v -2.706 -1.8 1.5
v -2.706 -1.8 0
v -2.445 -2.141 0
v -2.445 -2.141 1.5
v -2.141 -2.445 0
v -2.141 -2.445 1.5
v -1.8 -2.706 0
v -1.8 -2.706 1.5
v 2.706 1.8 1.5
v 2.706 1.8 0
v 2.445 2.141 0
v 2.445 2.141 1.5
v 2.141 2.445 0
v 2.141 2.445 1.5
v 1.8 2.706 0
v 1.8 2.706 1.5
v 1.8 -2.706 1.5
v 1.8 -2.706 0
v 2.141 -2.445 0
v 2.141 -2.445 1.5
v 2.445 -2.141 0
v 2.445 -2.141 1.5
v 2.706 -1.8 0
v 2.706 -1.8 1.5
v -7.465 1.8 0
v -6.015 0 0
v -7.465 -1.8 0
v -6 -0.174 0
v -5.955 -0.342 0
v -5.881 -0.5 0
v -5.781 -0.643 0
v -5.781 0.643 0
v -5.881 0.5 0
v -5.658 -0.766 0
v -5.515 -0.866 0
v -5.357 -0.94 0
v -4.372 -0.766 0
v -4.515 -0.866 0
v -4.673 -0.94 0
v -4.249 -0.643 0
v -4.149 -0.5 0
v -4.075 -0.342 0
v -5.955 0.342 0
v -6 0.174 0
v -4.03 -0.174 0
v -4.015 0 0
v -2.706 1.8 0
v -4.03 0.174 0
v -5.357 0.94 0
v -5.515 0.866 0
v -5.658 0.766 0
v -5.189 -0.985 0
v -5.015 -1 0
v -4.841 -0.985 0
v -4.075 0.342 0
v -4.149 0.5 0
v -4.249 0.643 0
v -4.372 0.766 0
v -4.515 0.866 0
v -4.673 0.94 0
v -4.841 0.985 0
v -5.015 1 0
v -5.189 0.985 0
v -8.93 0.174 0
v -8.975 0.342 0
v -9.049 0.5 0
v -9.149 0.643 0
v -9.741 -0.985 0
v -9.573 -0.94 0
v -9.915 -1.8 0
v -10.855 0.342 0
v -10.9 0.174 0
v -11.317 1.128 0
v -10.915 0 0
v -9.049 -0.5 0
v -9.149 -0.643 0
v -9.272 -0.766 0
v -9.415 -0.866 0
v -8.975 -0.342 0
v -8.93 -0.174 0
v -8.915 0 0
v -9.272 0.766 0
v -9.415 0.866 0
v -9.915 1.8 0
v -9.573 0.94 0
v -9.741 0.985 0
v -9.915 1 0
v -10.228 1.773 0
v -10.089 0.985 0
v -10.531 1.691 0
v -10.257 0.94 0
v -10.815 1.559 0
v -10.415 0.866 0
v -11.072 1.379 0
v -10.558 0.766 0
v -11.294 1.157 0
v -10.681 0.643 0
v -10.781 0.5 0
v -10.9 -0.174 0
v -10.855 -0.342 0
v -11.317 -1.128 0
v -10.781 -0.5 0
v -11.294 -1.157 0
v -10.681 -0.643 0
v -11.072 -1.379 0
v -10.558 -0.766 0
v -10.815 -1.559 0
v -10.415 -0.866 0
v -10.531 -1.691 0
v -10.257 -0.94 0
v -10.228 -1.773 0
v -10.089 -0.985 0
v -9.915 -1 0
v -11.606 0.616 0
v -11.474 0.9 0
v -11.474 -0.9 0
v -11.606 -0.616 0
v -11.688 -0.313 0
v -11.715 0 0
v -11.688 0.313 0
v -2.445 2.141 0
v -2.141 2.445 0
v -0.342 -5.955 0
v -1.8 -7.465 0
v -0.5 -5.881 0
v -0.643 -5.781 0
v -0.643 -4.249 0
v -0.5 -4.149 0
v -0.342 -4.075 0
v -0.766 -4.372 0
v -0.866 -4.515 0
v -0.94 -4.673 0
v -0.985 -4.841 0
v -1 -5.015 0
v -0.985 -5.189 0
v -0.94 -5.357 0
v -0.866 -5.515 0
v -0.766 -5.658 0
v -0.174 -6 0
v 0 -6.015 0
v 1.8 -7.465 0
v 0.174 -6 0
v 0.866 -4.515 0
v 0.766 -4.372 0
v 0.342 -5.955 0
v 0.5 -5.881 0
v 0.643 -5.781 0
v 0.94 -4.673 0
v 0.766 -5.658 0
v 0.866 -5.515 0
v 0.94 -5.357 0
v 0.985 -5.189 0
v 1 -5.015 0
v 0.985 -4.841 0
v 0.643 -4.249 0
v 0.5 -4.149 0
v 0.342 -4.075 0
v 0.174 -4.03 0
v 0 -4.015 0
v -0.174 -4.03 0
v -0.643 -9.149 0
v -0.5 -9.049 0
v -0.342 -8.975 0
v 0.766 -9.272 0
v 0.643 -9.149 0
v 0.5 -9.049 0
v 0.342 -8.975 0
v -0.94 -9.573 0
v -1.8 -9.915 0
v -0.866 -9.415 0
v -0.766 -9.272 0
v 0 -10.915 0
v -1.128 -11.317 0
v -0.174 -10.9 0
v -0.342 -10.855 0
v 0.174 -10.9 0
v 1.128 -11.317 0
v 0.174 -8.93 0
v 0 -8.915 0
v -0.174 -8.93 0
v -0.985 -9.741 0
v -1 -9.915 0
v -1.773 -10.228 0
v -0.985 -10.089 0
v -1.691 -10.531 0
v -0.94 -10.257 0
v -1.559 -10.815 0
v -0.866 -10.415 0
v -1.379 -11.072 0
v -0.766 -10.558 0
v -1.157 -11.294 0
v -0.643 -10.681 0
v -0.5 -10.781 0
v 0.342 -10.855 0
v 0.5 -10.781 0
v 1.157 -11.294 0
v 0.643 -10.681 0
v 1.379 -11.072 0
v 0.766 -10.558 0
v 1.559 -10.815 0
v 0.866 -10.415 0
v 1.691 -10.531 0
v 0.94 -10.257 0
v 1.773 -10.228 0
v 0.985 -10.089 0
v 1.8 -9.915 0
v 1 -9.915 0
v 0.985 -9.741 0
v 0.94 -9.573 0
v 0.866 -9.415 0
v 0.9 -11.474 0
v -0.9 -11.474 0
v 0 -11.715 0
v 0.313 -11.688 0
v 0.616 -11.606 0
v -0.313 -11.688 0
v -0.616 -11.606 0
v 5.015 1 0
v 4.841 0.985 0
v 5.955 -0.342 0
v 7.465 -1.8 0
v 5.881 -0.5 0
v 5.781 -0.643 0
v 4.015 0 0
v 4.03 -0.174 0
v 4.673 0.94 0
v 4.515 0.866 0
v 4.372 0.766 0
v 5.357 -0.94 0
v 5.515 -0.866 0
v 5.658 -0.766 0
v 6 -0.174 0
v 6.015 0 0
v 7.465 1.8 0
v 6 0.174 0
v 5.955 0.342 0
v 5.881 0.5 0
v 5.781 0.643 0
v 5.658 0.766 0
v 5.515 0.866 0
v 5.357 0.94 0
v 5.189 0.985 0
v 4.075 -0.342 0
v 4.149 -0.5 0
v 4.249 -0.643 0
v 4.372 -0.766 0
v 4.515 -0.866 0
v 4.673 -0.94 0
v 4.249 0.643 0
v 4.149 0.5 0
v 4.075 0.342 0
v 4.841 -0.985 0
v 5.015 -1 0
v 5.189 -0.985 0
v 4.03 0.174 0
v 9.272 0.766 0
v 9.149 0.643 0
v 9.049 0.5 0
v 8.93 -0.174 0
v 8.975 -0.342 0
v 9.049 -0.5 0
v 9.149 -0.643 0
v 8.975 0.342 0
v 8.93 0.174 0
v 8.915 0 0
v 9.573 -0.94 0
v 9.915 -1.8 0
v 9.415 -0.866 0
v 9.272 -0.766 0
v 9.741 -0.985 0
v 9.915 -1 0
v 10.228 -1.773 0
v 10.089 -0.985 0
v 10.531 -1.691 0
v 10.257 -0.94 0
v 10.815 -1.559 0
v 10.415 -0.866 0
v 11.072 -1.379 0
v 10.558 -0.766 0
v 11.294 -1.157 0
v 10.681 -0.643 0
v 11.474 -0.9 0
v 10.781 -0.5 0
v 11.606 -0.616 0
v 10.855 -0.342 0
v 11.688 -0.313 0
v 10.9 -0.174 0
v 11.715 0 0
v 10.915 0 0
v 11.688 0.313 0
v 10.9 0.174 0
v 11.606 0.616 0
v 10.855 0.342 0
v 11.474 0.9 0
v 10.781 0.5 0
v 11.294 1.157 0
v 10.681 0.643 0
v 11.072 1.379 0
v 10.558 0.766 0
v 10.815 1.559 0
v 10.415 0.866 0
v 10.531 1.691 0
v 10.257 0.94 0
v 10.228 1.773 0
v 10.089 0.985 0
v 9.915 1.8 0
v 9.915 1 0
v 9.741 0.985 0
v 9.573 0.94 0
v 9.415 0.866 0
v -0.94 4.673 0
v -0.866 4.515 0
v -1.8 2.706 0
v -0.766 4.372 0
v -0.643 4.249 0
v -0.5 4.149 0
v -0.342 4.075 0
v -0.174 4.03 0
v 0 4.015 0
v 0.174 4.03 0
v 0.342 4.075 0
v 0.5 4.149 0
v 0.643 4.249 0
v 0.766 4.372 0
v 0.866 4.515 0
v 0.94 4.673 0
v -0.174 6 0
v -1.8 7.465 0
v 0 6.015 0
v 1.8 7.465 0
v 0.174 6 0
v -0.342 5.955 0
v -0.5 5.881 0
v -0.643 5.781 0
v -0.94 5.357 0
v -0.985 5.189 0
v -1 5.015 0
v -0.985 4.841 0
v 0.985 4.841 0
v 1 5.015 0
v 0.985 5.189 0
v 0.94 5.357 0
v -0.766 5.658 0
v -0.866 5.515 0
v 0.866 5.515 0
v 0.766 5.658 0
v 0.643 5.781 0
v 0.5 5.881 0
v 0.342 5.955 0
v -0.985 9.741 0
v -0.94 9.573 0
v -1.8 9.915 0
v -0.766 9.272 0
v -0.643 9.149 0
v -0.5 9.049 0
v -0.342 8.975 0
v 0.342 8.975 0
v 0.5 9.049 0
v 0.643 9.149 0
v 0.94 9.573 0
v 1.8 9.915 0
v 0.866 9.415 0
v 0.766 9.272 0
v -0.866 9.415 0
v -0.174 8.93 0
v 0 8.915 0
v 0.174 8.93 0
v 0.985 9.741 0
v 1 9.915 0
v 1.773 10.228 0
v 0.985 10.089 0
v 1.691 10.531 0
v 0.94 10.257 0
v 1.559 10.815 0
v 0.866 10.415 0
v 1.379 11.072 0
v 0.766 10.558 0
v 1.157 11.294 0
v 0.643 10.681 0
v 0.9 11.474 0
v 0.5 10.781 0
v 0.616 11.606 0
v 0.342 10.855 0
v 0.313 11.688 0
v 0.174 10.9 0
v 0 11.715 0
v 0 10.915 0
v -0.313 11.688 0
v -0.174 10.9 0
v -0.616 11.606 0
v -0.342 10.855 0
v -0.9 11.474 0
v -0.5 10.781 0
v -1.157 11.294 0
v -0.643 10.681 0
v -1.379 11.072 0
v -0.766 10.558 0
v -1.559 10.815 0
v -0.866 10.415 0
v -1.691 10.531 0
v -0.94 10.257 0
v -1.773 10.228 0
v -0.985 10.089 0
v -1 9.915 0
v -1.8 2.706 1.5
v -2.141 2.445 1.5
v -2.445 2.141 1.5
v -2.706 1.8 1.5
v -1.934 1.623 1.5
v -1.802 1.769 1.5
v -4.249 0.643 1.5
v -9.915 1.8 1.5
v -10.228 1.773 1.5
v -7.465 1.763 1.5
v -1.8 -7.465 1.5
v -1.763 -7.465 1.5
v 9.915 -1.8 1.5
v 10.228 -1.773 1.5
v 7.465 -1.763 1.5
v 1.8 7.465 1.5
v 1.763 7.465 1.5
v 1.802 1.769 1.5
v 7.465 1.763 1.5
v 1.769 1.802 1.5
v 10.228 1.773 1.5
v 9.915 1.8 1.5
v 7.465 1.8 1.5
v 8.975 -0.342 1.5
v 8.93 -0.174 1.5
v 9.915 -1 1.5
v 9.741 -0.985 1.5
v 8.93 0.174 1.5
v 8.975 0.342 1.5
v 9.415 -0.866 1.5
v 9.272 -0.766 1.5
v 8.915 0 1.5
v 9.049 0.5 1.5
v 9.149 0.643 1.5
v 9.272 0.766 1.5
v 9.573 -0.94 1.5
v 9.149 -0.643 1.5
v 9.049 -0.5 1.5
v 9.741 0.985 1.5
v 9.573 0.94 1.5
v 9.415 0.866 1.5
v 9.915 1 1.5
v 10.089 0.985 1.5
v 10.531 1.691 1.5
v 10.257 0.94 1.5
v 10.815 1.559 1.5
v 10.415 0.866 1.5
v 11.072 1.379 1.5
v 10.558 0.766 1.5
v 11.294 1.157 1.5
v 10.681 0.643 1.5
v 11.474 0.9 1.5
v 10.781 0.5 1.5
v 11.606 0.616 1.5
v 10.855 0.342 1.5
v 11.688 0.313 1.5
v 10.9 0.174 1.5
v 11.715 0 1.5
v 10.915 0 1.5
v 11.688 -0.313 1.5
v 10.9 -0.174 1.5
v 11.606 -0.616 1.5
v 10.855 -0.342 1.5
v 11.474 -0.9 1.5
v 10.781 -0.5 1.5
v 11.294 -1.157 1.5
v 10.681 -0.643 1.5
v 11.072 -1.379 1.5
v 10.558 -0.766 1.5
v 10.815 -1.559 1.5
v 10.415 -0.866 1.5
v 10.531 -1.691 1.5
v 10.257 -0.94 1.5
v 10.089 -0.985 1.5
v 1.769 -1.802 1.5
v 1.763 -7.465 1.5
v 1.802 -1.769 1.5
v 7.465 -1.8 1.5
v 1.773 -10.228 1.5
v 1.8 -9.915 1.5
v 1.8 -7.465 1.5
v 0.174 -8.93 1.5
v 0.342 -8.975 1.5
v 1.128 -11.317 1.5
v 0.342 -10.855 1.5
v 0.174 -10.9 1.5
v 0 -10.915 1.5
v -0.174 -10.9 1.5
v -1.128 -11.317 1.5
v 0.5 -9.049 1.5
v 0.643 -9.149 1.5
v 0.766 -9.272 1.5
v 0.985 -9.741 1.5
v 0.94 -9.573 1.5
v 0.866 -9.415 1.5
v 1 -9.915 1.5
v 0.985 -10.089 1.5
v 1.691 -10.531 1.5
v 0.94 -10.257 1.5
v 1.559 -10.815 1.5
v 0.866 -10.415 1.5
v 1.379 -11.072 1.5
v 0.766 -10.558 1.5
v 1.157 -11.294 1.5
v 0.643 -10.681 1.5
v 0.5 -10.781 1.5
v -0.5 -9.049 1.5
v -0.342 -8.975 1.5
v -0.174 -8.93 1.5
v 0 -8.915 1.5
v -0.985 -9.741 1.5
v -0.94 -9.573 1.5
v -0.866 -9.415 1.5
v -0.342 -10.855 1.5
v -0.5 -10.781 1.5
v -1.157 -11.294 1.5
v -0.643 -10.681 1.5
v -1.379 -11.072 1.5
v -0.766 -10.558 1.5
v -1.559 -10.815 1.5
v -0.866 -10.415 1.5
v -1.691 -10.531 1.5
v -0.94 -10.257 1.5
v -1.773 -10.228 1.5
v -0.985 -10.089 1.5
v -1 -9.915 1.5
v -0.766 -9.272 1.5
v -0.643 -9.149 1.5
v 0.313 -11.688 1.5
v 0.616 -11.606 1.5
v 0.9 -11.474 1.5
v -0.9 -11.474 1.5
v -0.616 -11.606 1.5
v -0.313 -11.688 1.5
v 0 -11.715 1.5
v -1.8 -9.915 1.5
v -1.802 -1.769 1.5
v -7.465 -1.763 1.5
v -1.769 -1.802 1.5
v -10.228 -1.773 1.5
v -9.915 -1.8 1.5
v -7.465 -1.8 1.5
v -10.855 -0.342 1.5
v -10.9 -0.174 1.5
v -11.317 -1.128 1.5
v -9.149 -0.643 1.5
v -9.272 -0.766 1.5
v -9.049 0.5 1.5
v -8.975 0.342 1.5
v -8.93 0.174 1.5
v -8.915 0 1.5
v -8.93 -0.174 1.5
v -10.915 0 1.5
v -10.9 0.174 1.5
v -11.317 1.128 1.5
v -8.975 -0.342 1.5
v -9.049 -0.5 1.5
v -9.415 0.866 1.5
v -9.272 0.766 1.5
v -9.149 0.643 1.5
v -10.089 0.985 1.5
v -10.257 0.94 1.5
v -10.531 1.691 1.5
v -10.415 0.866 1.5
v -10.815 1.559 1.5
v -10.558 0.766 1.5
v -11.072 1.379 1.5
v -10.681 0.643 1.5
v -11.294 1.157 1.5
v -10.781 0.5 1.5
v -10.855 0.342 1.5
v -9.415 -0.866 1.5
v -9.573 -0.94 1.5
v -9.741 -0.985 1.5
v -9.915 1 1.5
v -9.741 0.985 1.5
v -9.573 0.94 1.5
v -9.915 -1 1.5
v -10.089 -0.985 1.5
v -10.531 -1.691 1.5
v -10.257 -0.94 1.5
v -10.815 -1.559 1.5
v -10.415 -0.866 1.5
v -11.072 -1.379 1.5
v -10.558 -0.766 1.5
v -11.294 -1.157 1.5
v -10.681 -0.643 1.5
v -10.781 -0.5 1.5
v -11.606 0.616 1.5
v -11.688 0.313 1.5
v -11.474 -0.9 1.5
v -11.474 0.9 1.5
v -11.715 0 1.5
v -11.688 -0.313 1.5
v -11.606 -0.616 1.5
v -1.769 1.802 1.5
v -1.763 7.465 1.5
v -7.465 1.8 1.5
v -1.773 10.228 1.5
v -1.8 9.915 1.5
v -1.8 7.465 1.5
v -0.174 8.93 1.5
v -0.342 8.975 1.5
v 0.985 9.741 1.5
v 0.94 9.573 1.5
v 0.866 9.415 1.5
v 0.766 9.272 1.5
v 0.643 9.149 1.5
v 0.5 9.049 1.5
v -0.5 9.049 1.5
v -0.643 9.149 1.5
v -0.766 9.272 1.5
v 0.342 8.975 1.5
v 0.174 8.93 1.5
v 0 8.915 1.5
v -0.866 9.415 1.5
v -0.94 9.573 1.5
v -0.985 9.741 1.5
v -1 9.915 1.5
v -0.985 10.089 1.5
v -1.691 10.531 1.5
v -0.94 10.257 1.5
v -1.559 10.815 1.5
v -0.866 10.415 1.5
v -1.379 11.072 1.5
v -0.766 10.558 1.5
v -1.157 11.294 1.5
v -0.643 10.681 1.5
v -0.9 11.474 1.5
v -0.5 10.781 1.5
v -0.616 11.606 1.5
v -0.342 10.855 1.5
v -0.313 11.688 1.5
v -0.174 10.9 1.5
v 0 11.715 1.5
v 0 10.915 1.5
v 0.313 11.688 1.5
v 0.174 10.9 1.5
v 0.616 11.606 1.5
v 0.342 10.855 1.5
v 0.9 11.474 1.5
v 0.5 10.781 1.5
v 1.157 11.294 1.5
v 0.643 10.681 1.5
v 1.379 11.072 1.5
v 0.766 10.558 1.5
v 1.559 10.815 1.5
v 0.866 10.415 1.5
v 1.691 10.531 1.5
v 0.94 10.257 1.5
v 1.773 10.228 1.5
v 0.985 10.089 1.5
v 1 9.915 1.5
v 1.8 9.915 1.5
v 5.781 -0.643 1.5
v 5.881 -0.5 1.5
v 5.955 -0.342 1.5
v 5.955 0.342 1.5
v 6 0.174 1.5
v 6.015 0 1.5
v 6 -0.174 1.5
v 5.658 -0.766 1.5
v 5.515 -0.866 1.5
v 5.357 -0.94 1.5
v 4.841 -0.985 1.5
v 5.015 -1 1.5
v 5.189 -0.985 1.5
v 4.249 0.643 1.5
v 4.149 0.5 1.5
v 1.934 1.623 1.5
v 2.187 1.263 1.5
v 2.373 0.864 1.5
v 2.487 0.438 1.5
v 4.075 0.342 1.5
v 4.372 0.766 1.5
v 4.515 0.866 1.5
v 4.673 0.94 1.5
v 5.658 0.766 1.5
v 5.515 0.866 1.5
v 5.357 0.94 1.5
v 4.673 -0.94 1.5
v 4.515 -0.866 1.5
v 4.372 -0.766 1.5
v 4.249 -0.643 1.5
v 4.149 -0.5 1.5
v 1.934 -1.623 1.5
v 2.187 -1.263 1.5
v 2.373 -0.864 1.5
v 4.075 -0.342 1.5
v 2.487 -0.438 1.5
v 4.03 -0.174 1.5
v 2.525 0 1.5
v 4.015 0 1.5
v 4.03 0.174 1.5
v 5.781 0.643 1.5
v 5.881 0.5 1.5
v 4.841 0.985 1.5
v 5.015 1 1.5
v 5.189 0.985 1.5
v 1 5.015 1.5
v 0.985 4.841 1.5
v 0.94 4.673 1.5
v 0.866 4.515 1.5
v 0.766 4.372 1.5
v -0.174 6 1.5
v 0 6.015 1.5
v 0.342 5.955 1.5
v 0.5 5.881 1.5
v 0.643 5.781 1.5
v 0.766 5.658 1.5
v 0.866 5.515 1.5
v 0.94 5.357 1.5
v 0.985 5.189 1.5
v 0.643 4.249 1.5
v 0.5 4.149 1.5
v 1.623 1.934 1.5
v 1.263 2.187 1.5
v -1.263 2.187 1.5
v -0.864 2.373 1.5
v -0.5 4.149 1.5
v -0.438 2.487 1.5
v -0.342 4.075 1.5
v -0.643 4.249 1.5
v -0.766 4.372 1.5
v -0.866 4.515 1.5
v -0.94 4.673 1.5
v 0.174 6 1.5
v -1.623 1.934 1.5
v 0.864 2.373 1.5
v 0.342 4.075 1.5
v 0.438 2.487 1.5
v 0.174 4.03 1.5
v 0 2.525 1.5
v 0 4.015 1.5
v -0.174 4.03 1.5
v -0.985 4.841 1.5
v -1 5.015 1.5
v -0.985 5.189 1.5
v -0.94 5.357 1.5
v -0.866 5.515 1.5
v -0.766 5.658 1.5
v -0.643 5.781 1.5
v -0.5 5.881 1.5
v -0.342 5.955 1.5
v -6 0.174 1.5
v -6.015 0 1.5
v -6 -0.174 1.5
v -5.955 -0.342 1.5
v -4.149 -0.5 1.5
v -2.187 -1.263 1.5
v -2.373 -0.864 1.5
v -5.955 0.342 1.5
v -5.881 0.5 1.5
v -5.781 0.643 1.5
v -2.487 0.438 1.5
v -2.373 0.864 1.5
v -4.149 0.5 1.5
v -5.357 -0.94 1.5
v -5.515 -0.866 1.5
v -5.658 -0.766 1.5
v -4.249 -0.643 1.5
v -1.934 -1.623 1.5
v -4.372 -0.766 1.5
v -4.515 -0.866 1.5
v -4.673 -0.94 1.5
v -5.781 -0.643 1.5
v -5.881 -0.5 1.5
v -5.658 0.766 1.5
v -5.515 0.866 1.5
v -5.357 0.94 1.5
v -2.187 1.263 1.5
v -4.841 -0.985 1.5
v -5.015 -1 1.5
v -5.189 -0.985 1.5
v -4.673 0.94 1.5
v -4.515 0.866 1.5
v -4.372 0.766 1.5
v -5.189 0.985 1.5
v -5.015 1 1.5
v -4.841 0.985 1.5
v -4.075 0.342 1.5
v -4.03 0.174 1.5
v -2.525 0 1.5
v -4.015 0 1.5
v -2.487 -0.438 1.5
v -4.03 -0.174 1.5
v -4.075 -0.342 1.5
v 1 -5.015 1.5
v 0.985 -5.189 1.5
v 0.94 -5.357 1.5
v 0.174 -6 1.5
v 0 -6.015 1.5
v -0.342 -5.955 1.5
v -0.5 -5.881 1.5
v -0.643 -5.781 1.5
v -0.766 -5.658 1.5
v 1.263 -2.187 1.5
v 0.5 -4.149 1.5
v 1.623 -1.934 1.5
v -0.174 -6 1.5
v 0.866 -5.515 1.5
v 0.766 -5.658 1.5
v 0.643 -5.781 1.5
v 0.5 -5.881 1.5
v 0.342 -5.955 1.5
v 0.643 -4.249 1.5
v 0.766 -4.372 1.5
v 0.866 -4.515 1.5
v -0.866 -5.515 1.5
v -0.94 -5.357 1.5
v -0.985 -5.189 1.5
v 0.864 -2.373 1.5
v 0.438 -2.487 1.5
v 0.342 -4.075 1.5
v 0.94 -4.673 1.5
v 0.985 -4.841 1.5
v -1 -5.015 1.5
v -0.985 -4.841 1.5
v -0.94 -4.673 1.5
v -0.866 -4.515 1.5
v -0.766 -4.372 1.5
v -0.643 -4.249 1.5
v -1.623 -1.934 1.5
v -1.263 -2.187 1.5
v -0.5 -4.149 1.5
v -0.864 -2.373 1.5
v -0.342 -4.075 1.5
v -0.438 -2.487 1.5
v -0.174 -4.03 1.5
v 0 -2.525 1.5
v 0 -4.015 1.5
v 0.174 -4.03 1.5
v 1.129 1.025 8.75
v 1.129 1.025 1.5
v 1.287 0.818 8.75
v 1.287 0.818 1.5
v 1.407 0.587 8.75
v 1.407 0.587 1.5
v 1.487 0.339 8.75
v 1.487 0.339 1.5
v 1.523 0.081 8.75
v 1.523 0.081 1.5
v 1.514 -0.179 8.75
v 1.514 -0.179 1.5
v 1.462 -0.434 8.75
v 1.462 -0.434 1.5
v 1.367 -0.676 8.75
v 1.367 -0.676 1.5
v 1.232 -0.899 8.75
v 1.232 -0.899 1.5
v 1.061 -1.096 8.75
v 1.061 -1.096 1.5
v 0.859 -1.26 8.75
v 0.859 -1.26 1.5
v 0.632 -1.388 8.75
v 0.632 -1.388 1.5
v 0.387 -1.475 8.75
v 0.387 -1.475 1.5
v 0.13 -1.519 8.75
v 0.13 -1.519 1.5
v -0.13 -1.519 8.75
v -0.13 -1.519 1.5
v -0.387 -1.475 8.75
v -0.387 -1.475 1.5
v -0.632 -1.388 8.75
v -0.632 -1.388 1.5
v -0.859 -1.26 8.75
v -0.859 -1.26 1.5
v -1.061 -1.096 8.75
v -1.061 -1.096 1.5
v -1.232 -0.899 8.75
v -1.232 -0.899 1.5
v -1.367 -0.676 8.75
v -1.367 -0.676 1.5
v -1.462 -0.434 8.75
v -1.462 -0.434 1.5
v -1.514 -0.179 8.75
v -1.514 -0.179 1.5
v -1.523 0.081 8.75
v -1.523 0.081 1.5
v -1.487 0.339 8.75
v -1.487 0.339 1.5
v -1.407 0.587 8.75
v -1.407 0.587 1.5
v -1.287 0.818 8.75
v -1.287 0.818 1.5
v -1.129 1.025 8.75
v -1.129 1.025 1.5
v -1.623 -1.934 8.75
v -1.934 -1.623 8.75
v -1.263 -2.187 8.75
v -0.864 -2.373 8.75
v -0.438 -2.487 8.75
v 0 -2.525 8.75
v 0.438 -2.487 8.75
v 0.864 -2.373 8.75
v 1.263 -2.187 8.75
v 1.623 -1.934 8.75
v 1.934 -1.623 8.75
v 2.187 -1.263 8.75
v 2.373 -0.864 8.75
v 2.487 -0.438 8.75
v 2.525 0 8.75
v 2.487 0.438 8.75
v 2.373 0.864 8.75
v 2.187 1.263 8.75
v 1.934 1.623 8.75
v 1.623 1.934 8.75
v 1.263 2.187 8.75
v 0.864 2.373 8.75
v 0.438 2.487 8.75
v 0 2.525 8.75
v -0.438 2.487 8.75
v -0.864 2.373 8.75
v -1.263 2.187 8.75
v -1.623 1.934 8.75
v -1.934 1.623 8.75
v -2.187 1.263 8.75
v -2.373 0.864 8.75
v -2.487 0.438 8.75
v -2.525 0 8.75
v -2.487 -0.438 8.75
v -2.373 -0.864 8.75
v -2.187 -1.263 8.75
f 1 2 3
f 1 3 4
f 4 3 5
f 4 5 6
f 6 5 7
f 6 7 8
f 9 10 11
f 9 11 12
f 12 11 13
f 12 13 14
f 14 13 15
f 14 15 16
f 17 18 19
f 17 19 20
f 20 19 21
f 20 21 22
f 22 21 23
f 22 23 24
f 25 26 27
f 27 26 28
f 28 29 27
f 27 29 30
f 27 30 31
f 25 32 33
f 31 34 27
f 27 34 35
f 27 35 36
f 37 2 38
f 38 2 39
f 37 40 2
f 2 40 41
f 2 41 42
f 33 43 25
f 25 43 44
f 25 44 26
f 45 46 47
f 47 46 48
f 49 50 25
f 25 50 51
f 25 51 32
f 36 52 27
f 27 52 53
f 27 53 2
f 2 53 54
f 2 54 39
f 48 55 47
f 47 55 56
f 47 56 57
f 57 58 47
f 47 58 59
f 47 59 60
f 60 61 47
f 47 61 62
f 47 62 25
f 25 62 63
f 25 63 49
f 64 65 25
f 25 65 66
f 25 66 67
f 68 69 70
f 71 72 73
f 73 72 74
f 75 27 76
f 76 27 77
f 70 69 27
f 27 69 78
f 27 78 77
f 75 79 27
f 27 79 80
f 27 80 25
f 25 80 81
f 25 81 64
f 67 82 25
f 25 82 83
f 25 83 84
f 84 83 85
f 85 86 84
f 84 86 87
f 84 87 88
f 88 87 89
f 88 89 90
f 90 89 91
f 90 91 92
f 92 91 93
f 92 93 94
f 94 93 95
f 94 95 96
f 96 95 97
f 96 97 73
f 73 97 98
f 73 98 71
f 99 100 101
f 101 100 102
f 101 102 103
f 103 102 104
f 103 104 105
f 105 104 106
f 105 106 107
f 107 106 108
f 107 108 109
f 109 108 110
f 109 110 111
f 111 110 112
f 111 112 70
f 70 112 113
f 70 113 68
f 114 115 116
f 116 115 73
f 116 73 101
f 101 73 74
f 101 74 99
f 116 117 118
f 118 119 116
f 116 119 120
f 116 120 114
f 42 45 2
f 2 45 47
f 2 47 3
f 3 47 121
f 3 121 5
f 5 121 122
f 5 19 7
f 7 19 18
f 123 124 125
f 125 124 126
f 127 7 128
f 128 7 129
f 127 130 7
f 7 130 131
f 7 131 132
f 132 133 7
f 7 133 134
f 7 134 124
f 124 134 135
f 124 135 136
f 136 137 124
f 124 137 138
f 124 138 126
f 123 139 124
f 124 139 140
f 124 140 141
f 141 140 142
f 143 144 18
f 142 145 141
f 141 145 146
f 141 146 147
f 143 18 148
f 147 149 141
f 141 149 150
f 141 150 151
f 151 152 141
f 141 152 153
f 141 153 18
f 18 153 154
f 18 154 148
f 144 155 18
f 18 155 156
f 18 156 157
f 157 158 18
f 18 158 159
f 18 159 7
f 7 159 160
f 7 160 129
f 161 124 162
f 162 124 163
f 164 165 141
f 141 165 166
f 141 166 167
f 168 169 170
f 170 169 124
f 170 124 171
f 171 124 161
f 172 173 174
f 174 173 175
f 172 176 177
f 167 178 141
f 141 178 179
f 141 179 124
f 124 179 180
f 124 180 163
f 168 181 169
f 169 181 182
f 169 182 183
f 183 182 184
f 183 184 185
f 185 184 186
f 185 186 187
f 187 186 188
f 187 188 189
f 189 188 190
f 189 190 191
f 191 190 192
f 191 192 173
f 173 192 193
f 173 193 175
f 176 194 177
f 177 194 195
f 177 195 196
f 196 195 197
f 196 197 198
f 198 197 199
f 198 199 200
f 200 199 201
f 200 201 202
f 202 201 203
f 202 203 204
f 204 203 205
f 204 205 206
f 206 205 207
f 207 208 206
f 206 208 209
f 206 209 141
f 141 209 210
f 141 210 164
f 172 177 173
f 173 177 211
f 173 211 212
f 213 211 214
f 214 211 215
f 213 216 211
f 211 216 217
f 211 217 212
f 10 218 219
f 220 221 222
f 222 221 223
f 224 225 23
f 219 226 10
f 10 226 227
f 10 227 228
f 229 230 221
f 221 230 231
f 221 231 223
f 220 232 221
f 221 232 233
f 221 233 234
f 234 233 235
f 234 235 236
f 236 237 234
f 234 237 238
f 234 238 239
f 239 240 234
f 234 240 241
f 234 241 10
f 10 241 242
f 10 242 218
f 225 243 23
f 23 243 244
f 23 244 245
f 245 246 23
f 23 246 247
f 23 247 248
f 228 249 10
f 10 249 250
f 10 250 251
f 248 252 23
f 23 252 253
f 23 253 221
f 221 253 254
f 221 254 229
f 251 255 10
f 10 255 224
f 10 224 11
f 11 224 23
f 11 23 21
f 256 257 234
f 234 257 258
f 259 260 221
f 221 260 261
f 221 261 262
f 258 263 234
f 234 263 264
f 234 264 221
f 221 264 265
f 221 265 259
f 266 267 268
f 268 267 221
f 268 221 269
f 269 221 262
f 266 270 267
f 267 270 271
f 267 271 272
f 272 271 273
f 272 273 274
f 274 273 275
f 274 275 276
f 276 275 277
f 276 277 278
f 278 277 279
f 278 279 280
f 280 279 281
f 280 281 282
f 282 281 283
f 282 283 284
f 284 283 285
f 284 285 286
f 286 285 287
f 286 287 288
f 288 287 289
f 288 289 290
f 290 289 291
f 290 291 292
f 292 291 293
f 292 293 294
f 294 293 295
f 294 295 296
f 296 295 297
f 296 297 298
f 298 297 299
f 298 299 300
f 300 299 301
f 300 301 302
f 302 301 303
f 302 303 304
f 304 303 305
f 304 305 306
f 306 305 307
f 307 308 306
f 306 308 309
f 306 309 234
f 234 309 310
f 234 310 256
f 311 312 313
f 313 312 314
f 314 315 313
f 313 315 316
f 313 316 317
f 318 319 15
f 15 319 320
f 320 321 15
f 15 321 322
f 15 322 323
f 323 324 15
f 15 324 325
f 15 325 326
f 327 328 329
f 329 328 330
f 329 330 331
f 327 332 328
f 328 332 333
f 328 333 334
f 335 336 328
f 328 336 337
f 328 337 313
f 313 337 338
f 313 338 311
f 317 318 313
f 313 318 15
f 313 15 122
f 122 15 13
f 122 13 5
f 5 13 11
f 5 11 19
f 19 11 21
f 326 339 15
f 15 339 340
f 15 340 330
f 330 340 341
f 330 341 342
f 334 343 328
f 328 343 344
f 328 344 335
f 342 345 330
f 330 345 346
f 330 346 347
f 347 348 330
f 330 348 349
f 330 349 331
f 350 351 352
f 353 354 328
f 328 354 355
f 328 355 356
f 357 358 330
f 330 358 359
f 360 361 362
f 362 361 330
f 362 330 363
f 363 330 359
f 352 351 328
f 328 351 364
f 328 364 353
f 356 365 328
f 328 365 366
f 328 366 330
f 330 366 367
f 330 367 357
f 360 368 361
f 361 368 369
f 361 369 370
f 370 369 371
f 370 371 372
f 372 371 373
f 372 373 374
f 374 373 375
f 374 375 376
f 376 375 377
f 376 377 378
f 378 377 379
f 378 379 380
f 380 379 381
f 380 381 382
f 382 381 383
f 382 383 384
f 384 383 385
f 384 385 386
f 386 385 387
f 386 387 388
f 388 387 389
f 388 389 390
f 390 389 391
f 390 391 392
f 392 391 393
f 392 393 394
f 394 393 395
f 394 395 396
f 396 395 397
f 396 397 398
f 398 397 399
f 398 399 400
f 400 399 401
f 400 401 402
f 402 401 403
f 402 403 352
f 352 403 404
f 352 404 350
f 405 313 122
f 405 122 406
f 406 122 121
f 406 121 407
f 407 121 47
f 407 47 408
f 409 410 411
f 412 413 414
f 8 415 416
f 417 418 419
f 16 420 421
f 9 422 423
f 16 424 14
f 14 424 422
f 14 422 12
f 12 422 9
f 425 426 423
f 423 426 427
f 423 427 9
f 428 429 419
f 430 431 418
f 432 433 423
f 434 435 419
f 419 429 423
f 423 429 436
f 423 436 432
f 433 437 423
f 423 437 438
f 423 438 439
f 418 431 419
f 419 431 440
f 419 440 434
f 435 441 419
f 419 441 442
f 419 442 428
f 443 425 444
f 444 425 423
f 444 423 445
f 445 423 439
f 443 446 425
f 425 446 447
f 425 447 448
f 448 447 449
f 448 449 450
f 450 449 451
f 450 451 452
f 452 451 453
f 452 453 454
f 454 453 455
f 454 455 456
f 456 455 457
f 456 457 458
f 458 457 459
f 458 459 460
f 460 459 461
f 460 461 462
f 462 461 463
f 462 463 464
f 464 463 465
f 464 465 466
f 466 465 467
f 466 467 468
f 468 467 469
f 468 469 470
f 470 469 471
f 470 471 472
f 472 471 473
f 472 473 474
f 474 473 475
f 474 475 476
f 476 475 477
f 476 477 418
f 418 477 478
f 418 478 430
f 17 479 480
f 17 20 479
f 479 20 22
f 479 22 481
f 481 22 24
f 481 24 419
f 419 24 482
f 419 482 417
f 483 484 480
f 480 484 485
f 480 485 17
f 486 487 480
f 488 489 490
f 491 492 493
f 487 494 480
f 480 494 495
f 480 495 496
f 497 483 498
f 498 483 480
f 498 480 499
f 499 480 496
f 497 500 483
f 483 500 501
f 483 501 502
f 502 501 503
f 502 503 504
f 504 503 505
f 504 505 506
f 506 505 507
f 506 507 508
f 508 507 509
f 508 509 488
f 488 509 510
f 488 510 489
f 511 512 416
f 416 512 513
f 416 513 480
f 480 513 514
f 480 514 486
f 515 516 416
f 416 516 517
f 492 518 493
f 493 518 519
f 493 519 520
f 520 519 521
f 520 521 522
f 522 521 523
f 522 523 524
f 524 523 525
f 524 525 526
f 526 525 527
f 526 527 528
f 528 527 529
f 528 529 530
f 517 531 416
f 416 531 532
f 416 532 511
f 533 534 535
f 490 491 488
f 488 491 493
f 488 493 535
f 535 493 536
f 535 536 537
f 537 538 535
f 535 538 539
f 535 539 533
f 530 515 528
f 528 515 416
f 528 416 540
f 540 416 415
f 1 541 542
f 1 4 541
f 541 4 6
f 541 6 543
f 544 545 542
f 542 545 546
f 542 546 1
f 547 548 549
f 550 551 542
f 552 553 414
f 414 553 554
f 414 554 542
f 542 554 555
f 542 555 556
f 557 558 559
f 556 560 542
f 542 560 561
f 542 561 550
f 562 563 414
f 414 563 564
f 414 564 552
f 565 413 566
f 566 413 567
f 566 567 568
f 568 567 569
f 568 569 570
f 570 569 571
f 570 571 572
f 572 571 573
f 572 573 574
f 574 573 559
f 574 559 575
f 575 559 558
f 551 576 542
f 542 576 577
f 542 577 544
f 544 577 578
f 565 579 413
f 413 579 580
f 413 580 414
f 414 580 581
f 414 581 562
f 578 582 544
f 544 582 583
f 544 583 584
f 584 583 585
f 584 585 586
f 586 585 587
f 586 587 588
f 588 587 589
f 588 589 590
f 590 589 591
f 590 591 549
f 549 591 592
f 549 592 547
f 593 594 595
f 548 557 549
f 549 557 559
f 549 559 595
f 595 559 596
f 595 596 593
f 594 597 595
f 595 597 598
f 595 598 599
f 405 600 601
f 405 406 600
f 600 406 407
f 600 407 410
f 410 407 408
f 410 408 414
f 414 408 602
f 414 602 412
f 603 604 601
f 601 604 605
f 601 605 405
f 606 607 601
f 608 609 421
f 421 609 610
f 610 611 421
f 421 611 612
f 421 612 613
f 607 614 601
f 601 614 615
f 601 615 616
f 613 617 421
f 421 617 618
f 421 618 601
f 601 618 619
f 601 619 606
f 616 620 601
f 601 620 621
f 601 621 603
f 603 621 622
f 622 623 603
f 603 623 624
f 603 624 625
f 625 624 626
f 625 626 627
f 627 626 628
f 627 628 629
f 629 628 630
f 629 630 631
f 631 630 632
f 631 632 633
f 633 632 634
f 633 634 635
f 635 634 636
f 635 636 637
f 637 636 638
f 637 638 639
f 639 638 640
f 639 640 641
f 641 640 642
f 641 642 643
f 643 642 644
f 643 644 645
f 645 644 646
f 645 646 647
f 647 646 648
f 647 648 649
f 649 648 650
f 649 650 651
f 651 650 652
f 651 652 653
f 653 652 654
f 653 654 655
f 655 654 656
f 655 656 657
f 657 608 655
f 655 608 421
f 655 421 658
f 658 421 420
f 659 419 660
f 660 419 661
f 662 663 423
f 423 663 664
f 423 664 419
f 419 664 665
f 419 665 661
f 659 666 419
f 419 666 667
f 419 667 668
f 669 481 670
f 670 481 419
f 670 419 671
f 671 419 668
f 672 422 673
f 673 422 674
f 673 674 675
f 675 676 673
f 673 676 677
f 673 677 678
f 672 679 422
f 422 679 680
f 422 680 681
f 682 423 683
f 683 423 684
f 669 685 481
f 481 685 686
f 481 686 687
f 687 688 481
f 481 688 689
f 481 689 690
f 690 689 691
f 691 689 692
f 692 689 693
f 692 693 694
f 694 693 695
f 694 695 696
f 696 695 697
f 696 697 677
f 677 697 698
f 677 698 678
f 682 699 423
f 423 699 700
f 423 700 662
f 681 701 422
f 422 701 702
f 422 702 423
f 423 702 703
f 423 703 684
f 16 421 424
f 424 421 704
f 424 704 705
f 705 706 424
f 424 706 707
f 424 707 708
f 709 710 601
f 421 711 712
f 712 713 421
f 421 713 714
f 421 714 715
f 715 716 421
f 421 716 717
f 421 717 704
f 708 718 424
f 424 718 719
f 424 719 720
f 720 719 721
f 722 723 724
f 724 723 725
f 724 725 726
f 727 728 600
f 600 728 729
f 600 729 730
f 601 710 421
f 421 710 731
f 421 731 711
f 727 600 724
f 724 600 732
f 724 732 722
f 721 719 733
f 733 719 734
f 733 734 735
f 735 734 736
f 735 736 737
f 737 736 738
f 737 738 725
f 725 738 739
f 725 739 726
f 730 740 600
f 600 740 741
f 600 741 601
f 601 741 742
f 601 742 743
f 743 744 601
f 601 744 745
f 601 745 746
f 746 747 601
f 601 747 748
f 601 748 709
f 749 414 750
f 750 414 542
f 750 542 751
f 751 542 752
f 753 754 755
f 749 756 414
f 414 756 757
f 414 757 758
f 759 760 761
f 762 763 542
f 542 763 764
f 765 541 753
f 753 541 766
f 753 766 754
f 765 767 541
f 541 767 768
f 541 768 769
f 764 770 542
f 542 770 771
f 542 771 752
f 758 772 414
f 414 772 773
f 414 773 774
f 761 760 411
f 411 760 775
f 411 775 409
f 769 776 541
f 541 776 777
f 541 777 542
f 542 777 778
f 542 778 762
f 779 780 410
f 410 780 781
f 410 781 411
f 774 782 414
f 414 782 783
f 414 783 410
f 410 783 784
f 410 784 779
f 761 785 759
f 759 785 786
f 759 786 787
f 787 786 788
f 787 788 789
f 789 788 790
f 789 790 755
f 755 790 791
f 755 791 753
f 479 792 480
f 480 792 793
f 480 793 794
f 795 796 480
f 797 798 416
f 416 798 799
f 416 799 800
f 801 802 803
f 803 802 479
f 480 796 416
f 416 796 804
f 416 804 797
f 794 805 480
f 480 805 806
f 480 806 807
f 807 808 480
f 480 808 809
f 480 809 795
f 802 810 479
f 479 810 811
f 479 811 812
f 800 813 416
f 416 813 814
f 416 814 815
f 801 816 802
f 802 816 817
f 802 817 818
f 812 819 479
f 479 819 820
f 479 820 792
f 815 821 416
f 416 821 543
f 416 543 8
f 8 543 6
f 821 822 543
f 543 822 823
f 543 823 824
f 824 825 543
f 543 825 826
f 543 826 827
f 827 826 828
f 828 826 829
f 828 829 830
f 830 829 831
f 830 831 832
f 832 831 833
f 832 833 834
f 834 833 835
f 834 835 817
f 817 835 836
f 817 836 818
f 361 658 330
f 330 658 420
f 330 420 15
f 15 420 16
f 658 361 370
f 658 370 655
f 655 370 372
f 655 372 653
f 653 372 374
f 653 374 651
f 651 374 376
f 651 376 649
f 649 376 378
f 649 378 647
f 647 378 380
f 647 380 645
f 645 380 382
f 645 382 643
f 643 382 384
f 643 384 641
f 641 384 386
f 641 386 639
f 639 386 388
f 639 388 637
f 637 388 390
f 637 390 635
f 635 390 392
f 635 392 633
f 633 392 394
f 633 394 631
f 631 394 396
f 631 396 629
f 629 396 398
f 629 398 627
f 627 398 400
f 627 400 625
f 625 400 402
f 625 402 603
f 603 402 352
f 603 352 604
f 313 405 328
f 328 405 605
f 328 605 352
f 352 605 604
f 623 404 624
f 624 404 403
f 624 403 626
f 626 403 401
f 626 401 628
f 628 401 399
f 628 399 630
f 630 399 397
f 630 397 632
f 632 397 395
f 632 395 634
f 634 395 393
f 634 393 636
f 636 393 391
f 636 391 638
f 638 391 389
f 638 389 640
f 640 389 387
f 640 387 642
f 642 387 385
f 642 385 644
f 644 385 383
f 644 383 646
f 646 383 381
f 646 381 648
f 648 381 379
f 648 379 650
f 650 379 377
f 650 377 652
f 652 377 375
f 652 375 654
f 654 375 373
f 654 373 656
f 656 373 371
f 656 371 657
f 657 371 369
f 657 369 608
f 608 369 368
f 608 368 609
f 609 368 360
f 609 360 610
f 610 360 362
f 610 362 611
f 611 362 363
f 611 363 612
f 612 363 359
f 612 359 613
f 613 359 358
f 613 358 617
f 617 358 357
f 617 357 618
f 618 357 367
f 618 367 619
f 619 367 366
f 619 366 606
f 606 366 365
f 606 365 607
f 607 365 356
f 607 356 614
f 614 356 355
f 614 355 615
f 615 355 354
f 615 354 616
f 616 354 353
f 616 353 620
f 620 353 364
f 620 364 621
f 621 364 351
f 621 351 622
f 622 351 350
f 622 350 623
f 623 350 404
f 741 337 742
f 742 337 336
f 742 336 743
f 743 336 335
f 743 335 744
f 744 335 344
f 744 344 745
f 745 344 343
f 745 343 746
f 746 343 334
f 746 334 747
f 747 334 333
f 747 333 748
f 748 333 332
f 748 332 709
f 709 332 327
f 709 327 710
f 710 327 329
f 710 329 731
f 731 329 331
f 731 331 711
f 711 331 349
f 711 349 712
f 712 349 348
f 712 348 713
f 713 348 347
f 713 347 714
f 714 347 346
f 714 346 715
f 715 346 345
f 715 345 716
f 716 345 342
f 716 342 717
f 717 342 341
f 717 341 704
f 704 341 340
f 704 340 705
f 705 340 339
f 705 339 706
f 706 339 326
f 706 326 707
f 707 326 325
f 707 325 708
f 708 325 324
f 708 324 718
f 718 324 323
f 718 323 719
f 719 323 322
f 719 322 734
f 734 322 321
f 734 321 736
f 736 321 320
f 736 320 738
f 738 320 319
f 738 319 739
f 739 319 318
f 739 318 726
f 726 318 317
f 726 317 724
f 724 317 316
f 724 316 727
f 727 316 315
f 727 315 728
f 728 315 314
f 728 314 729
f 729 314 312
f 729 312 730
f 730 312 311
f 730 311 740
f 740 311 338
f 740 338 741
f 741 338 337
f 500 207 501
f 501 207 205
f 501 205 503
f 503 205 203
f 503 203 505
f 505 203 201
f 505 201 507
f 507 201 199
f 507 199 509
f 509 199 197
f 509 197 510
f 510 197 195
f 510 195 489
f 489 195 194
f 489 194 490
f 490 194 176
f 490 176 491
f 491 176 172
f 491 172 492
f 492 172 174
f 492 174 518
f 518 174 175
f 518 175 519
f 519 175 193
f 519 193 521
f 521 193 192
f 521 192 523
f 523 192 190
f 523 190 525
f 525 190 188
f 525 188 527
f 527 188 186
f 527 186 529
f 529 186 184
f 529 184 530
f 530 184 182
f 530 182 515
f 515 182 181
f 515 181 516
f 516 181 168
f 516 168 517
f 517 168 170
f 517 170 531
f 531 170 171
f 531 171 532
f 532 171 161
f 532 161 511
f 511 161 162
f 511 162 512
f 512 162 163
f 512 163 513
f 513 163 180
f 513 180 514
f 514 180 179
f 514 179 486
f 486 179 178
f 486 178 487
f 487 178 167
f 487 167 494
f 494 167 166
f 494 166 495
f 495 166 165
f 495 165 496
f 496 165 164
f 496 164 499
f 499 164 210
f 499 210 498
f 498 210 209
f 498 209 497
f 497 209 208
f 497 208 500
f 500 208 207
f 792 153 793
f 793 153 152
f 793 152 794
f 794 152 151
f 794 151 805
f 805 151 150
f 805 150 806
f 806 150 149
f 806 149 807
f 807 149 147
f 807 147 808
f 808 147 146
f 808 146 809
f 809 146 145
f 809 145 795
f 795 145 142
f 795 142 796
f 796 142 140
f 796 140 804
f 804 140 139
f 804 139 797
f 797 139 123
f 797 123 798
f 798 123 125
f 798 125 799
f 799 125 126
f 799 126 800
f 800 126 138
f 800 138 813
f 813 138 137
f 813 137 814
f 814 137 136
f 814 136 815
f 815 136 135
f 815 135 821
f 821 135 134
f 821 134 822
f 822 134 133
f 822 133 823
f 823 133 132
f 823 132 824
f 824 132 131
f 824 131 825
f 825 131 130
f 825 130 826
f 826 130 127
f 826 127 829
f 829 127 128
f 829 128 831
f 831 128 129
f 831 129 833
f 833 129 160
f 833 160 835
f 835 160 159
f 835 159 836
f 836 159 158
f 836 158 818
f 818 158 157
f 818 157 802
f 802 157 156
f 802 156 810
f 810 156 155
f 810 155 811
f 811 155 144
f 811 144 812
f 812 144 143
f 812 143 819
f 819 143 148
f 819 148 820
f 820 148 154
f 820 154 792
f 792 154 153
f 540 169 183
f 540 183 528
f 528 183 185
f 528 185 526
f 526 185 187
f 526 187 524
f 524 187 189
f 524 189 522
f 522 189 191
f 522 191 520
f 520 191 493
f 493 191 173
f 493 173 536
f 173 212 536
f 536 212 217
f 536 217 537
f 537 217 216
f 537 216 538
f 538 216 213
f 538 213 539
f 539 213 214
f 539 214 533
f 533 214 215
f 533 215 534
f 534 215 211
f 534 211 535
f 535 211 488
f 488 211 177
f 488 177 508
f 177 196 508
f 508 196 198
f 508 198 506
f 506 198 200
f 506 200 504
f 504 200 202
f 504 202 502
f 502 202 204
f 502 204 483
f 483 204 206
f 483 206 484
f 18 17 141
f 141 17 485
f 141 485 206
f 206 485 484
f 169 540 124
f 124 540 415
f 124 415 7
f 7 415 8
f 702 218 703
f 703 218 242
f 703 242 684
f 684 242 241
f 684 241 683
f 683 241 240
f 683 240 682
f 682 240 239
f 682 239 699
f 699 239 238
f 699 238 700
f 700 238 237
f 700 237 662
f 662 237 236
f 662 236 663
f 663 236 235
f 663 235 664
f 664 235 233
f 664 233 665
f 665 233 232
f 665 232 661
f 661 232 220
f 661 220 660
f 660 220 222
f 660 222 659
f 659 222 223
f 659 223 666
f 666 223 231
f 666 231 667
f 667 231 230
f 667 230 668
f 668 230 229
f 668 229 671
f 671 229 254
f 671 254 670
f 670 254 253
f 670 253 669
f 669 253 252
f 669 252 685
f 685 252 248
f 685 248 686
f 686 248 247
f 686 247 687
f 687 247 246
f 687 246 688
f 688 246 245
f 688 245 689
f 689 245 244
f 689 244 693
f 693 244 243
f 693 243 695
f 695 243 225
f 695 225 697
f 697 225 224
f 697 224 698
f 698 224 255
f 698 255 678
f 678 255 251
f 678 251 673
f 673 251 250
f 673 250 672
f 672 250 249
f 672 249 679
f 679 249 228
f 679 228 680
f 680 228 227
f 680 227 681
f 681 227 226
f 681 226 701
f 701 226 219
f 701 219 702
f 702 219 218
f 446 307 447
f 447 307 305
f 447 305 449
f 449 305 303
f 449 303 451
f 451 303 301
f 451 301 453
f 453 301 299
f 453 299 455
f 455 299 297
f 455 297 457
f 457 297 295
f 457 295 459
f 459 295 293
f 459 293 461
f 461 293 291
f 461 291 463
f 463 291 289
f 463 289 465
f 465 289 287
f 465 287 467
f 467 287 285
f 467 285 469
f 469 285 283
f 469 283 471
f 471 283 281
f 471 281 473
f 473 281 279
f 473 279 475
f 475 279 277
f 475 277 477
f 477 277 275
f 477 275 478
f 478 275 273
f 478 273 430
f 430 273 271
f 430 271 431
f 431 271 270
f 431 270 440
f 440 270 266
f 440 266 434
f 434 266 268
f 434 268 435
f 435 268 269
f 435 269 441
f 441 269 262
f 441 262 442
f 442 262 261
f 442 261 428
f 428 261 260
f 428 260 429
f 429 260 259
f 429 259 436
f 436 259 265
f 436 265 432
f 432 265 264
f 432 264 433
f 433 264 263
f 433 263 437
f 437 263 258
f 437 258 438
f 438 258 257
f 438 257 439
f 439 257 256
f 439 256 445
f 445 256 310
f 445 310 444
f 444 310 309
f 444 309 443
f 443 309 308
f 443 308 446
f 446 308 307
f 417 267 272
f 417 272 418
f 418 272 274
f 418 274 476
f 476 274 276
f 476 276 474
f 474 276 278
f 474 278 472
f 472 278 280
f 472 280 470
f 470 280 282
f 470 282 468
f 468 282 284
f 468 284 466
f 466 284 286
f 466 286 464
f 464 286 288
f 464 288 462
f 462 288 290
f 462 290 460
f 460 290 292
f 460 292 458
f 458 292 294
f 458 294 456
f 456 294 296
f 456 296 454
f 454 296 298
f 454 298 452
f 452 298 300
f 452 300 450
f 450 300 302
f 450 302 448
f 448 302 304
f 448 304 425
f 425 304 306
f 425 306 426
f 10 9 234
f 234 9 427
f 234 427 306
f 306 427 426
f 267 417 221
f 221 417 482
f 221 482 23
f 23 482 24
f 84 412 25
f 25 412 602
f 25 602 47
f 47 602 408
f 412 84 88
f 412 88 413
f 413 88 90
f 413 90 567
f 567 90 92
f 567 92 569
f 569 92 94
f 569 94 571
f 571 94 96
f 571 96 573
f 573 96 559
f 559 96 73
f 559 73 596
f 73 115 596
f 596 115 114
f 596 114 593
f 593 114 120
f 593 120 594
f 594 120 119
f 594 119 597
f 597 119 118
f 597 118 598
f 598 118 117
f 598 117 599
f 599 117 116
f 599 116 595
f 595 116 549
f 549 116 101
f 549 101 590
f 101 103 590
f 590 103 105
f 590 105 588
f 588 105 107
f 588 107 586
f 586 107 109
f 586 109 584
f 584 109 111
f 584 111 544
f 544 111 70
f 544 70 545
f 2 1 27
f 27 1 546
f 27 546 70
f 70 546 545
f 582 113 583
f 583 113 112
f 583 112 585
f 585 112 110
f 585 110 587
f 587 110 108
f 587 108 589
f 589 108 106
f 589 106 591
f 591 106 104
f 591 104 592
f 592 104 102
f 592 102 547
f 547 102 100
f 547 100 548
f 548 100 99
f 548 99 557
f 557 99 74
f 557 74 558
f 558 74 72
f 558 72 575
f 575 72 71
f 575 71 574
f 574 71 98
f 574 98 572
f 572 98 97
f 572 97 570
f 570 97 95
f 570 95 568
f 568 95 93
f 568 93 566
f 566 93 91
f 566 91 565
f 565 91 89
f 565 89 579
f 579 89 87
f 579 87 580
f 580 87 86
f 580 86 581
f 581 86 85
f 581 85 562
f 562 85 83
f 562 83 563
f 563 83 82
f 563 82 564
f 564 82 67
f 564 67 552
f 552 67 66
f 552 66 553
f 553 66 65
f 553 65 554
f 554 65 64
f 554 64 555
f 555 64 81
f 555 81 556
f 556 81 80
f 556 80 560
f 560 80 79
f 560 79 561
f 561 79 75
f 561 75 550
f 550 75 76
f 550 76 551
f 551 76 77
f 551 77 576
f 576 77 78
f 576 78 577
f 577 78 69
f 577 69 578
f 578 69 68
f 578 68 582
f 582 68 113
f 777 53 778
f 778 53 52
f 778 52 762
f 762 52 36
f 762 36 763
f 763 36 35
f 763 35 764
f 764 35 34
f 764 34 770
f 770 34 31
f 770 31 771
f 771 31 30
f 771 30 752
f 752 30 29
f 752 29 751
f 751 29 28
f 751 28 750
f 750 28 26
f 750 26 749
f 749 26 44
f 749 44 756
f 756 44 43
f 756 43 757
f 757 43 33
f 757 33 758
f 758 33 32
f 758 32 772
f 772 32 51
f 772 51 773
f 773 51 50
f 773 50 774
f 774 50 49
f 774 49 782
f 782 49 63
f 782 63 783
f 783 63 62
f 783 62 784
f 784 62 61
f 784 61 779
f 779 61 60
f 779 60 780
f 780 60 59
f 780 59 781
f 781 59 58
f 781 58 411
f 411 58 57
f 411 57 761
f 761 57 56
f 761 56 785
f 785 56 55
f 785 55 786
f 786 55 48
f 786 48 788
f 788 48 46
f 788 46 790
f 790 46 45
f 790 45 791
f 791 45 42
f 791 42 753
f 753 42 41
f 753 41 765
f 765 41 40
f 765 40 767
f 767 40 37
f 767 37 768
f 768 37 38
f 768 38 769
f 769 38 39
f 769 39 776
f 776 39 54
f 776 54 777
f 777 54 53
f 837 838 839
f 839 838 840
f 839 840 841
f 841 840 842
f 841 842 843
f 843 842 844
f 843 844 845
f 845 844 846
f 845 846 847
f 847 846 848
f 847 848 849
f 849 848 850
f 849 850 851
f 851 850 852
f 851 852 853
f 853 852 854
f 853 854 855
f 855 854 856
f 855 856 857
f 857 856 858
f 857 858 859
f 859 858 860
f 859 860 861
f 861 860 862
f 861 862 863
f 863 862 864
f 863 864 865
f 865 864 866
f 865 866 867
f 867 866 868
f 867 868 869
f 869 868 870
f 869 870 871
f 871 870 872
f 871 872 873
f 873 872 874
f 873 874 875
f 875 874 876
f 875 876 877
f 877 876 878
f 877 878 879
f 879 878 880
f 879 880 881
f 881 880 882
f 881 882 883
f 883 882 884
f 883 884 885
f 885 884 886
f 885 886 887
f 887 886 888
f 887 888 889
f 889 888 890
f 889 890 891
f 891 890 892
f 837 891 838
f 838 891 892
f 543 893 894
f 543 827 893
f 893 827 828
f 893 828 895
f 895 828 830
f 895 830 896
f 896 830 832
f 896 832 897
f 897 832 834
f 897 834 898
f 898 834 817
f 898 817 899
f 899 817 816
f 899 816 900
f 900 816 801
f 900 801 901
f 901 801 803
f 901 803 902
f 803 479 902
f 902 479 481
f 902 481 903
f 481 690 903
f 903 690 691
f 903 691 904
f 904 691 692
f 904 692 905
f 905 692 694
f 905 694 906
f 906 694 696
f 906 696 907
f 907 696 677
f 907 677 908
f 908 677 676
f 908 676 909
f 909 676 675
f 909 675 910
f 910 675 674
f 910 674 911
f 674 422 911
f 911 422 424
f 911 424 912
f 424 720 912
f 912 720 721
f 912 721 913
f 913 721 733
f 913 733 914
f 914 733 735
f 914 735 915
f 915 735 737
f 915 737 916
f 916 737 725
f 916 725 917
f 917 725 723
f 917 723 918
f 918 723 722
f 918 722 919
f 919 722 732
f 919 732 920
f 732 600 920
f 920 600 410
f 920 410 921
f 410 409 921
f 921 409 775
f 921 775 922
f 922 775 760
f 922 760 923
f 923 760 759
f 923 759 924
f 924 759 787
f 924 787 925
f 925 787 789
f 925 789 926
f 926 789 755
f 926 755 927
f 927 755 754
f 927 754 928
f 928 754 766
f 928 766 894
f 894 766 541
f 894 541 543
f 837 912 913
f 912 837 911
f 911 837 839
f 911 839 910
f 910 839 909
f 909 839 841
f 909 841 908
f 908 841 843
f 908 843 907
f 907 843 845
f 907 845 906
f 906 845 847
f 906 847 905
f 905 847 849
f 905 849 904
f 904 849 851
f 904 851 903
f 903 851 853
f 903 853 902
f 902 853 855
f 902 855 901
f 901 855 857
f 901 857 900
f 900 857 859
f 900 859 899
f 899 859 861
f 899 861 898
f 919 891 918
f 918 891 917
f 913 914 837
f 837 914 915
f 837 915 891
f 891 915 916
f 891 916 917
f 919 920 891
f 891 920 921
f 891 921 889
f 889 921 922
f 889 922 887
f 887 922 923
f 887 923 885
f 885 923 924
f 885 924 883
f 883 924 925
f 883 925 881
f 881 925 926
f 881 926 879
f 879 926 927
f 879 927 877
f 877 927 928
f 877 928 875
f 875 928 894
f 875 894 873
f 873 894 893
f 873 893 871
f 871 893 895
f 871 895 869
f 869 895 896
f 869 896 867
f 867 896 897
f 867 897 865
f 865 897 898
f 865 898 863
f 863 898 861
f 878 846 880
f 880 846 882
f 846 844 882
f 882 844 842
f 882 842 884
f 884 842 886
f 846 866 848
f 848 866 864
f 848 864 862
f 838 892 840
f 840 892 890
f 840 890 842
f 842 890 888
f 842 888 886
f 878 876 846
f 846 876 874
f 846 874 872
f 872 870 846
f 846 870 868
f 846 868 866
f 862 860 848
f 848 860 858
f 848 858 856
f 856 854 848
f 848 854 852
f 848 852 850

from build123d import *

# Parameters (mm, degrees)
SKETCH1_R           = 1
BOSS_EXTRUDE1_DEPTH = 1.5
CIRPATTERN1_COUNT   = 4
SKETCH3_R           = 2.525
SKETCH3_R_2         = 1.525
BOSS_EXTRUDE3_DEPTH = 7.25


with BuildPart() as part:
    # Sketch1 → Boss-Extrude1 (new body)
    with BuildSketch(Plane.XY):
        with BuildLine():
            Line((1.8, 2.706011826), (1.8, 9.915))
            ThreePointArc((1.8, 9.915), (0, 11.715), (-1.8, 9.915))
            Line((-1.8, 9.915), (-1.8, 2.706011826))
            ThreePointArc((-1.8, 2.706011826), (0, -3.25), (1.8, 2.706011826))
        make_face()
        with Locations((0, 5.015)):
            Circle(SKETCH1_R, mode=Mode.SUBTRACT)
        with Locations((0, 9.915)):
            Circle(SKETCH1_R, mode=Mode.SUBTRACT)
    boss_extrude1 = extrude(amount=BOSS_EXTRUDE1_DEPTH)

    # CirPattern1: Boss-Extrude1 ×4 about axis
    cirpattern1_axis = Axis((0, 0, 0), (0, 0, 1))
    for i in range(1, CIRPATTERN1_COUNT):
        add(boss_extrude1.rotate(cirpattern1_axis, i * 360 / CIRPATTERN1_COUNT))

    # Sketch3 → Boss-Extrude3 (add)
    # profile 1 of 3: a face of its own
    with BuildSketch(Plane.XY.offset(1.5)):
        with Locations(Location((0, 0, 0), (0, 0, 180))):
            Circle(SKETCH3_R)
        Circle(SKETCH3_R_2, mode=Mode.SUBTRACT)
    # profile 2 of 3: a face of its own
    with BuildSketch(Plane.XY.offset(1.5)):
        with BuildLine():
            ThreePointArc((1.129158979, 1.025), (0, 1.525), (-1.129158979, 1.025))
            Line((-1.129158979, 1.025), (1.129158979, 1.025))
        make_face()
    # profile 3 of 3: a face of its own
    with BuildSketch(Plane.XY.offset(1.5)):
        with BuildLine():
            ThreePointArc((1.129158979, 1.025), (0, 1.525), (-1.129158979, 1.025))
            Line((-1.129158979, 1.025), (1.129158979, 1.025))
        make_face()
    extrude(amount=BOSS_EXTRUDE3_DEPTH)


solid = part.part
